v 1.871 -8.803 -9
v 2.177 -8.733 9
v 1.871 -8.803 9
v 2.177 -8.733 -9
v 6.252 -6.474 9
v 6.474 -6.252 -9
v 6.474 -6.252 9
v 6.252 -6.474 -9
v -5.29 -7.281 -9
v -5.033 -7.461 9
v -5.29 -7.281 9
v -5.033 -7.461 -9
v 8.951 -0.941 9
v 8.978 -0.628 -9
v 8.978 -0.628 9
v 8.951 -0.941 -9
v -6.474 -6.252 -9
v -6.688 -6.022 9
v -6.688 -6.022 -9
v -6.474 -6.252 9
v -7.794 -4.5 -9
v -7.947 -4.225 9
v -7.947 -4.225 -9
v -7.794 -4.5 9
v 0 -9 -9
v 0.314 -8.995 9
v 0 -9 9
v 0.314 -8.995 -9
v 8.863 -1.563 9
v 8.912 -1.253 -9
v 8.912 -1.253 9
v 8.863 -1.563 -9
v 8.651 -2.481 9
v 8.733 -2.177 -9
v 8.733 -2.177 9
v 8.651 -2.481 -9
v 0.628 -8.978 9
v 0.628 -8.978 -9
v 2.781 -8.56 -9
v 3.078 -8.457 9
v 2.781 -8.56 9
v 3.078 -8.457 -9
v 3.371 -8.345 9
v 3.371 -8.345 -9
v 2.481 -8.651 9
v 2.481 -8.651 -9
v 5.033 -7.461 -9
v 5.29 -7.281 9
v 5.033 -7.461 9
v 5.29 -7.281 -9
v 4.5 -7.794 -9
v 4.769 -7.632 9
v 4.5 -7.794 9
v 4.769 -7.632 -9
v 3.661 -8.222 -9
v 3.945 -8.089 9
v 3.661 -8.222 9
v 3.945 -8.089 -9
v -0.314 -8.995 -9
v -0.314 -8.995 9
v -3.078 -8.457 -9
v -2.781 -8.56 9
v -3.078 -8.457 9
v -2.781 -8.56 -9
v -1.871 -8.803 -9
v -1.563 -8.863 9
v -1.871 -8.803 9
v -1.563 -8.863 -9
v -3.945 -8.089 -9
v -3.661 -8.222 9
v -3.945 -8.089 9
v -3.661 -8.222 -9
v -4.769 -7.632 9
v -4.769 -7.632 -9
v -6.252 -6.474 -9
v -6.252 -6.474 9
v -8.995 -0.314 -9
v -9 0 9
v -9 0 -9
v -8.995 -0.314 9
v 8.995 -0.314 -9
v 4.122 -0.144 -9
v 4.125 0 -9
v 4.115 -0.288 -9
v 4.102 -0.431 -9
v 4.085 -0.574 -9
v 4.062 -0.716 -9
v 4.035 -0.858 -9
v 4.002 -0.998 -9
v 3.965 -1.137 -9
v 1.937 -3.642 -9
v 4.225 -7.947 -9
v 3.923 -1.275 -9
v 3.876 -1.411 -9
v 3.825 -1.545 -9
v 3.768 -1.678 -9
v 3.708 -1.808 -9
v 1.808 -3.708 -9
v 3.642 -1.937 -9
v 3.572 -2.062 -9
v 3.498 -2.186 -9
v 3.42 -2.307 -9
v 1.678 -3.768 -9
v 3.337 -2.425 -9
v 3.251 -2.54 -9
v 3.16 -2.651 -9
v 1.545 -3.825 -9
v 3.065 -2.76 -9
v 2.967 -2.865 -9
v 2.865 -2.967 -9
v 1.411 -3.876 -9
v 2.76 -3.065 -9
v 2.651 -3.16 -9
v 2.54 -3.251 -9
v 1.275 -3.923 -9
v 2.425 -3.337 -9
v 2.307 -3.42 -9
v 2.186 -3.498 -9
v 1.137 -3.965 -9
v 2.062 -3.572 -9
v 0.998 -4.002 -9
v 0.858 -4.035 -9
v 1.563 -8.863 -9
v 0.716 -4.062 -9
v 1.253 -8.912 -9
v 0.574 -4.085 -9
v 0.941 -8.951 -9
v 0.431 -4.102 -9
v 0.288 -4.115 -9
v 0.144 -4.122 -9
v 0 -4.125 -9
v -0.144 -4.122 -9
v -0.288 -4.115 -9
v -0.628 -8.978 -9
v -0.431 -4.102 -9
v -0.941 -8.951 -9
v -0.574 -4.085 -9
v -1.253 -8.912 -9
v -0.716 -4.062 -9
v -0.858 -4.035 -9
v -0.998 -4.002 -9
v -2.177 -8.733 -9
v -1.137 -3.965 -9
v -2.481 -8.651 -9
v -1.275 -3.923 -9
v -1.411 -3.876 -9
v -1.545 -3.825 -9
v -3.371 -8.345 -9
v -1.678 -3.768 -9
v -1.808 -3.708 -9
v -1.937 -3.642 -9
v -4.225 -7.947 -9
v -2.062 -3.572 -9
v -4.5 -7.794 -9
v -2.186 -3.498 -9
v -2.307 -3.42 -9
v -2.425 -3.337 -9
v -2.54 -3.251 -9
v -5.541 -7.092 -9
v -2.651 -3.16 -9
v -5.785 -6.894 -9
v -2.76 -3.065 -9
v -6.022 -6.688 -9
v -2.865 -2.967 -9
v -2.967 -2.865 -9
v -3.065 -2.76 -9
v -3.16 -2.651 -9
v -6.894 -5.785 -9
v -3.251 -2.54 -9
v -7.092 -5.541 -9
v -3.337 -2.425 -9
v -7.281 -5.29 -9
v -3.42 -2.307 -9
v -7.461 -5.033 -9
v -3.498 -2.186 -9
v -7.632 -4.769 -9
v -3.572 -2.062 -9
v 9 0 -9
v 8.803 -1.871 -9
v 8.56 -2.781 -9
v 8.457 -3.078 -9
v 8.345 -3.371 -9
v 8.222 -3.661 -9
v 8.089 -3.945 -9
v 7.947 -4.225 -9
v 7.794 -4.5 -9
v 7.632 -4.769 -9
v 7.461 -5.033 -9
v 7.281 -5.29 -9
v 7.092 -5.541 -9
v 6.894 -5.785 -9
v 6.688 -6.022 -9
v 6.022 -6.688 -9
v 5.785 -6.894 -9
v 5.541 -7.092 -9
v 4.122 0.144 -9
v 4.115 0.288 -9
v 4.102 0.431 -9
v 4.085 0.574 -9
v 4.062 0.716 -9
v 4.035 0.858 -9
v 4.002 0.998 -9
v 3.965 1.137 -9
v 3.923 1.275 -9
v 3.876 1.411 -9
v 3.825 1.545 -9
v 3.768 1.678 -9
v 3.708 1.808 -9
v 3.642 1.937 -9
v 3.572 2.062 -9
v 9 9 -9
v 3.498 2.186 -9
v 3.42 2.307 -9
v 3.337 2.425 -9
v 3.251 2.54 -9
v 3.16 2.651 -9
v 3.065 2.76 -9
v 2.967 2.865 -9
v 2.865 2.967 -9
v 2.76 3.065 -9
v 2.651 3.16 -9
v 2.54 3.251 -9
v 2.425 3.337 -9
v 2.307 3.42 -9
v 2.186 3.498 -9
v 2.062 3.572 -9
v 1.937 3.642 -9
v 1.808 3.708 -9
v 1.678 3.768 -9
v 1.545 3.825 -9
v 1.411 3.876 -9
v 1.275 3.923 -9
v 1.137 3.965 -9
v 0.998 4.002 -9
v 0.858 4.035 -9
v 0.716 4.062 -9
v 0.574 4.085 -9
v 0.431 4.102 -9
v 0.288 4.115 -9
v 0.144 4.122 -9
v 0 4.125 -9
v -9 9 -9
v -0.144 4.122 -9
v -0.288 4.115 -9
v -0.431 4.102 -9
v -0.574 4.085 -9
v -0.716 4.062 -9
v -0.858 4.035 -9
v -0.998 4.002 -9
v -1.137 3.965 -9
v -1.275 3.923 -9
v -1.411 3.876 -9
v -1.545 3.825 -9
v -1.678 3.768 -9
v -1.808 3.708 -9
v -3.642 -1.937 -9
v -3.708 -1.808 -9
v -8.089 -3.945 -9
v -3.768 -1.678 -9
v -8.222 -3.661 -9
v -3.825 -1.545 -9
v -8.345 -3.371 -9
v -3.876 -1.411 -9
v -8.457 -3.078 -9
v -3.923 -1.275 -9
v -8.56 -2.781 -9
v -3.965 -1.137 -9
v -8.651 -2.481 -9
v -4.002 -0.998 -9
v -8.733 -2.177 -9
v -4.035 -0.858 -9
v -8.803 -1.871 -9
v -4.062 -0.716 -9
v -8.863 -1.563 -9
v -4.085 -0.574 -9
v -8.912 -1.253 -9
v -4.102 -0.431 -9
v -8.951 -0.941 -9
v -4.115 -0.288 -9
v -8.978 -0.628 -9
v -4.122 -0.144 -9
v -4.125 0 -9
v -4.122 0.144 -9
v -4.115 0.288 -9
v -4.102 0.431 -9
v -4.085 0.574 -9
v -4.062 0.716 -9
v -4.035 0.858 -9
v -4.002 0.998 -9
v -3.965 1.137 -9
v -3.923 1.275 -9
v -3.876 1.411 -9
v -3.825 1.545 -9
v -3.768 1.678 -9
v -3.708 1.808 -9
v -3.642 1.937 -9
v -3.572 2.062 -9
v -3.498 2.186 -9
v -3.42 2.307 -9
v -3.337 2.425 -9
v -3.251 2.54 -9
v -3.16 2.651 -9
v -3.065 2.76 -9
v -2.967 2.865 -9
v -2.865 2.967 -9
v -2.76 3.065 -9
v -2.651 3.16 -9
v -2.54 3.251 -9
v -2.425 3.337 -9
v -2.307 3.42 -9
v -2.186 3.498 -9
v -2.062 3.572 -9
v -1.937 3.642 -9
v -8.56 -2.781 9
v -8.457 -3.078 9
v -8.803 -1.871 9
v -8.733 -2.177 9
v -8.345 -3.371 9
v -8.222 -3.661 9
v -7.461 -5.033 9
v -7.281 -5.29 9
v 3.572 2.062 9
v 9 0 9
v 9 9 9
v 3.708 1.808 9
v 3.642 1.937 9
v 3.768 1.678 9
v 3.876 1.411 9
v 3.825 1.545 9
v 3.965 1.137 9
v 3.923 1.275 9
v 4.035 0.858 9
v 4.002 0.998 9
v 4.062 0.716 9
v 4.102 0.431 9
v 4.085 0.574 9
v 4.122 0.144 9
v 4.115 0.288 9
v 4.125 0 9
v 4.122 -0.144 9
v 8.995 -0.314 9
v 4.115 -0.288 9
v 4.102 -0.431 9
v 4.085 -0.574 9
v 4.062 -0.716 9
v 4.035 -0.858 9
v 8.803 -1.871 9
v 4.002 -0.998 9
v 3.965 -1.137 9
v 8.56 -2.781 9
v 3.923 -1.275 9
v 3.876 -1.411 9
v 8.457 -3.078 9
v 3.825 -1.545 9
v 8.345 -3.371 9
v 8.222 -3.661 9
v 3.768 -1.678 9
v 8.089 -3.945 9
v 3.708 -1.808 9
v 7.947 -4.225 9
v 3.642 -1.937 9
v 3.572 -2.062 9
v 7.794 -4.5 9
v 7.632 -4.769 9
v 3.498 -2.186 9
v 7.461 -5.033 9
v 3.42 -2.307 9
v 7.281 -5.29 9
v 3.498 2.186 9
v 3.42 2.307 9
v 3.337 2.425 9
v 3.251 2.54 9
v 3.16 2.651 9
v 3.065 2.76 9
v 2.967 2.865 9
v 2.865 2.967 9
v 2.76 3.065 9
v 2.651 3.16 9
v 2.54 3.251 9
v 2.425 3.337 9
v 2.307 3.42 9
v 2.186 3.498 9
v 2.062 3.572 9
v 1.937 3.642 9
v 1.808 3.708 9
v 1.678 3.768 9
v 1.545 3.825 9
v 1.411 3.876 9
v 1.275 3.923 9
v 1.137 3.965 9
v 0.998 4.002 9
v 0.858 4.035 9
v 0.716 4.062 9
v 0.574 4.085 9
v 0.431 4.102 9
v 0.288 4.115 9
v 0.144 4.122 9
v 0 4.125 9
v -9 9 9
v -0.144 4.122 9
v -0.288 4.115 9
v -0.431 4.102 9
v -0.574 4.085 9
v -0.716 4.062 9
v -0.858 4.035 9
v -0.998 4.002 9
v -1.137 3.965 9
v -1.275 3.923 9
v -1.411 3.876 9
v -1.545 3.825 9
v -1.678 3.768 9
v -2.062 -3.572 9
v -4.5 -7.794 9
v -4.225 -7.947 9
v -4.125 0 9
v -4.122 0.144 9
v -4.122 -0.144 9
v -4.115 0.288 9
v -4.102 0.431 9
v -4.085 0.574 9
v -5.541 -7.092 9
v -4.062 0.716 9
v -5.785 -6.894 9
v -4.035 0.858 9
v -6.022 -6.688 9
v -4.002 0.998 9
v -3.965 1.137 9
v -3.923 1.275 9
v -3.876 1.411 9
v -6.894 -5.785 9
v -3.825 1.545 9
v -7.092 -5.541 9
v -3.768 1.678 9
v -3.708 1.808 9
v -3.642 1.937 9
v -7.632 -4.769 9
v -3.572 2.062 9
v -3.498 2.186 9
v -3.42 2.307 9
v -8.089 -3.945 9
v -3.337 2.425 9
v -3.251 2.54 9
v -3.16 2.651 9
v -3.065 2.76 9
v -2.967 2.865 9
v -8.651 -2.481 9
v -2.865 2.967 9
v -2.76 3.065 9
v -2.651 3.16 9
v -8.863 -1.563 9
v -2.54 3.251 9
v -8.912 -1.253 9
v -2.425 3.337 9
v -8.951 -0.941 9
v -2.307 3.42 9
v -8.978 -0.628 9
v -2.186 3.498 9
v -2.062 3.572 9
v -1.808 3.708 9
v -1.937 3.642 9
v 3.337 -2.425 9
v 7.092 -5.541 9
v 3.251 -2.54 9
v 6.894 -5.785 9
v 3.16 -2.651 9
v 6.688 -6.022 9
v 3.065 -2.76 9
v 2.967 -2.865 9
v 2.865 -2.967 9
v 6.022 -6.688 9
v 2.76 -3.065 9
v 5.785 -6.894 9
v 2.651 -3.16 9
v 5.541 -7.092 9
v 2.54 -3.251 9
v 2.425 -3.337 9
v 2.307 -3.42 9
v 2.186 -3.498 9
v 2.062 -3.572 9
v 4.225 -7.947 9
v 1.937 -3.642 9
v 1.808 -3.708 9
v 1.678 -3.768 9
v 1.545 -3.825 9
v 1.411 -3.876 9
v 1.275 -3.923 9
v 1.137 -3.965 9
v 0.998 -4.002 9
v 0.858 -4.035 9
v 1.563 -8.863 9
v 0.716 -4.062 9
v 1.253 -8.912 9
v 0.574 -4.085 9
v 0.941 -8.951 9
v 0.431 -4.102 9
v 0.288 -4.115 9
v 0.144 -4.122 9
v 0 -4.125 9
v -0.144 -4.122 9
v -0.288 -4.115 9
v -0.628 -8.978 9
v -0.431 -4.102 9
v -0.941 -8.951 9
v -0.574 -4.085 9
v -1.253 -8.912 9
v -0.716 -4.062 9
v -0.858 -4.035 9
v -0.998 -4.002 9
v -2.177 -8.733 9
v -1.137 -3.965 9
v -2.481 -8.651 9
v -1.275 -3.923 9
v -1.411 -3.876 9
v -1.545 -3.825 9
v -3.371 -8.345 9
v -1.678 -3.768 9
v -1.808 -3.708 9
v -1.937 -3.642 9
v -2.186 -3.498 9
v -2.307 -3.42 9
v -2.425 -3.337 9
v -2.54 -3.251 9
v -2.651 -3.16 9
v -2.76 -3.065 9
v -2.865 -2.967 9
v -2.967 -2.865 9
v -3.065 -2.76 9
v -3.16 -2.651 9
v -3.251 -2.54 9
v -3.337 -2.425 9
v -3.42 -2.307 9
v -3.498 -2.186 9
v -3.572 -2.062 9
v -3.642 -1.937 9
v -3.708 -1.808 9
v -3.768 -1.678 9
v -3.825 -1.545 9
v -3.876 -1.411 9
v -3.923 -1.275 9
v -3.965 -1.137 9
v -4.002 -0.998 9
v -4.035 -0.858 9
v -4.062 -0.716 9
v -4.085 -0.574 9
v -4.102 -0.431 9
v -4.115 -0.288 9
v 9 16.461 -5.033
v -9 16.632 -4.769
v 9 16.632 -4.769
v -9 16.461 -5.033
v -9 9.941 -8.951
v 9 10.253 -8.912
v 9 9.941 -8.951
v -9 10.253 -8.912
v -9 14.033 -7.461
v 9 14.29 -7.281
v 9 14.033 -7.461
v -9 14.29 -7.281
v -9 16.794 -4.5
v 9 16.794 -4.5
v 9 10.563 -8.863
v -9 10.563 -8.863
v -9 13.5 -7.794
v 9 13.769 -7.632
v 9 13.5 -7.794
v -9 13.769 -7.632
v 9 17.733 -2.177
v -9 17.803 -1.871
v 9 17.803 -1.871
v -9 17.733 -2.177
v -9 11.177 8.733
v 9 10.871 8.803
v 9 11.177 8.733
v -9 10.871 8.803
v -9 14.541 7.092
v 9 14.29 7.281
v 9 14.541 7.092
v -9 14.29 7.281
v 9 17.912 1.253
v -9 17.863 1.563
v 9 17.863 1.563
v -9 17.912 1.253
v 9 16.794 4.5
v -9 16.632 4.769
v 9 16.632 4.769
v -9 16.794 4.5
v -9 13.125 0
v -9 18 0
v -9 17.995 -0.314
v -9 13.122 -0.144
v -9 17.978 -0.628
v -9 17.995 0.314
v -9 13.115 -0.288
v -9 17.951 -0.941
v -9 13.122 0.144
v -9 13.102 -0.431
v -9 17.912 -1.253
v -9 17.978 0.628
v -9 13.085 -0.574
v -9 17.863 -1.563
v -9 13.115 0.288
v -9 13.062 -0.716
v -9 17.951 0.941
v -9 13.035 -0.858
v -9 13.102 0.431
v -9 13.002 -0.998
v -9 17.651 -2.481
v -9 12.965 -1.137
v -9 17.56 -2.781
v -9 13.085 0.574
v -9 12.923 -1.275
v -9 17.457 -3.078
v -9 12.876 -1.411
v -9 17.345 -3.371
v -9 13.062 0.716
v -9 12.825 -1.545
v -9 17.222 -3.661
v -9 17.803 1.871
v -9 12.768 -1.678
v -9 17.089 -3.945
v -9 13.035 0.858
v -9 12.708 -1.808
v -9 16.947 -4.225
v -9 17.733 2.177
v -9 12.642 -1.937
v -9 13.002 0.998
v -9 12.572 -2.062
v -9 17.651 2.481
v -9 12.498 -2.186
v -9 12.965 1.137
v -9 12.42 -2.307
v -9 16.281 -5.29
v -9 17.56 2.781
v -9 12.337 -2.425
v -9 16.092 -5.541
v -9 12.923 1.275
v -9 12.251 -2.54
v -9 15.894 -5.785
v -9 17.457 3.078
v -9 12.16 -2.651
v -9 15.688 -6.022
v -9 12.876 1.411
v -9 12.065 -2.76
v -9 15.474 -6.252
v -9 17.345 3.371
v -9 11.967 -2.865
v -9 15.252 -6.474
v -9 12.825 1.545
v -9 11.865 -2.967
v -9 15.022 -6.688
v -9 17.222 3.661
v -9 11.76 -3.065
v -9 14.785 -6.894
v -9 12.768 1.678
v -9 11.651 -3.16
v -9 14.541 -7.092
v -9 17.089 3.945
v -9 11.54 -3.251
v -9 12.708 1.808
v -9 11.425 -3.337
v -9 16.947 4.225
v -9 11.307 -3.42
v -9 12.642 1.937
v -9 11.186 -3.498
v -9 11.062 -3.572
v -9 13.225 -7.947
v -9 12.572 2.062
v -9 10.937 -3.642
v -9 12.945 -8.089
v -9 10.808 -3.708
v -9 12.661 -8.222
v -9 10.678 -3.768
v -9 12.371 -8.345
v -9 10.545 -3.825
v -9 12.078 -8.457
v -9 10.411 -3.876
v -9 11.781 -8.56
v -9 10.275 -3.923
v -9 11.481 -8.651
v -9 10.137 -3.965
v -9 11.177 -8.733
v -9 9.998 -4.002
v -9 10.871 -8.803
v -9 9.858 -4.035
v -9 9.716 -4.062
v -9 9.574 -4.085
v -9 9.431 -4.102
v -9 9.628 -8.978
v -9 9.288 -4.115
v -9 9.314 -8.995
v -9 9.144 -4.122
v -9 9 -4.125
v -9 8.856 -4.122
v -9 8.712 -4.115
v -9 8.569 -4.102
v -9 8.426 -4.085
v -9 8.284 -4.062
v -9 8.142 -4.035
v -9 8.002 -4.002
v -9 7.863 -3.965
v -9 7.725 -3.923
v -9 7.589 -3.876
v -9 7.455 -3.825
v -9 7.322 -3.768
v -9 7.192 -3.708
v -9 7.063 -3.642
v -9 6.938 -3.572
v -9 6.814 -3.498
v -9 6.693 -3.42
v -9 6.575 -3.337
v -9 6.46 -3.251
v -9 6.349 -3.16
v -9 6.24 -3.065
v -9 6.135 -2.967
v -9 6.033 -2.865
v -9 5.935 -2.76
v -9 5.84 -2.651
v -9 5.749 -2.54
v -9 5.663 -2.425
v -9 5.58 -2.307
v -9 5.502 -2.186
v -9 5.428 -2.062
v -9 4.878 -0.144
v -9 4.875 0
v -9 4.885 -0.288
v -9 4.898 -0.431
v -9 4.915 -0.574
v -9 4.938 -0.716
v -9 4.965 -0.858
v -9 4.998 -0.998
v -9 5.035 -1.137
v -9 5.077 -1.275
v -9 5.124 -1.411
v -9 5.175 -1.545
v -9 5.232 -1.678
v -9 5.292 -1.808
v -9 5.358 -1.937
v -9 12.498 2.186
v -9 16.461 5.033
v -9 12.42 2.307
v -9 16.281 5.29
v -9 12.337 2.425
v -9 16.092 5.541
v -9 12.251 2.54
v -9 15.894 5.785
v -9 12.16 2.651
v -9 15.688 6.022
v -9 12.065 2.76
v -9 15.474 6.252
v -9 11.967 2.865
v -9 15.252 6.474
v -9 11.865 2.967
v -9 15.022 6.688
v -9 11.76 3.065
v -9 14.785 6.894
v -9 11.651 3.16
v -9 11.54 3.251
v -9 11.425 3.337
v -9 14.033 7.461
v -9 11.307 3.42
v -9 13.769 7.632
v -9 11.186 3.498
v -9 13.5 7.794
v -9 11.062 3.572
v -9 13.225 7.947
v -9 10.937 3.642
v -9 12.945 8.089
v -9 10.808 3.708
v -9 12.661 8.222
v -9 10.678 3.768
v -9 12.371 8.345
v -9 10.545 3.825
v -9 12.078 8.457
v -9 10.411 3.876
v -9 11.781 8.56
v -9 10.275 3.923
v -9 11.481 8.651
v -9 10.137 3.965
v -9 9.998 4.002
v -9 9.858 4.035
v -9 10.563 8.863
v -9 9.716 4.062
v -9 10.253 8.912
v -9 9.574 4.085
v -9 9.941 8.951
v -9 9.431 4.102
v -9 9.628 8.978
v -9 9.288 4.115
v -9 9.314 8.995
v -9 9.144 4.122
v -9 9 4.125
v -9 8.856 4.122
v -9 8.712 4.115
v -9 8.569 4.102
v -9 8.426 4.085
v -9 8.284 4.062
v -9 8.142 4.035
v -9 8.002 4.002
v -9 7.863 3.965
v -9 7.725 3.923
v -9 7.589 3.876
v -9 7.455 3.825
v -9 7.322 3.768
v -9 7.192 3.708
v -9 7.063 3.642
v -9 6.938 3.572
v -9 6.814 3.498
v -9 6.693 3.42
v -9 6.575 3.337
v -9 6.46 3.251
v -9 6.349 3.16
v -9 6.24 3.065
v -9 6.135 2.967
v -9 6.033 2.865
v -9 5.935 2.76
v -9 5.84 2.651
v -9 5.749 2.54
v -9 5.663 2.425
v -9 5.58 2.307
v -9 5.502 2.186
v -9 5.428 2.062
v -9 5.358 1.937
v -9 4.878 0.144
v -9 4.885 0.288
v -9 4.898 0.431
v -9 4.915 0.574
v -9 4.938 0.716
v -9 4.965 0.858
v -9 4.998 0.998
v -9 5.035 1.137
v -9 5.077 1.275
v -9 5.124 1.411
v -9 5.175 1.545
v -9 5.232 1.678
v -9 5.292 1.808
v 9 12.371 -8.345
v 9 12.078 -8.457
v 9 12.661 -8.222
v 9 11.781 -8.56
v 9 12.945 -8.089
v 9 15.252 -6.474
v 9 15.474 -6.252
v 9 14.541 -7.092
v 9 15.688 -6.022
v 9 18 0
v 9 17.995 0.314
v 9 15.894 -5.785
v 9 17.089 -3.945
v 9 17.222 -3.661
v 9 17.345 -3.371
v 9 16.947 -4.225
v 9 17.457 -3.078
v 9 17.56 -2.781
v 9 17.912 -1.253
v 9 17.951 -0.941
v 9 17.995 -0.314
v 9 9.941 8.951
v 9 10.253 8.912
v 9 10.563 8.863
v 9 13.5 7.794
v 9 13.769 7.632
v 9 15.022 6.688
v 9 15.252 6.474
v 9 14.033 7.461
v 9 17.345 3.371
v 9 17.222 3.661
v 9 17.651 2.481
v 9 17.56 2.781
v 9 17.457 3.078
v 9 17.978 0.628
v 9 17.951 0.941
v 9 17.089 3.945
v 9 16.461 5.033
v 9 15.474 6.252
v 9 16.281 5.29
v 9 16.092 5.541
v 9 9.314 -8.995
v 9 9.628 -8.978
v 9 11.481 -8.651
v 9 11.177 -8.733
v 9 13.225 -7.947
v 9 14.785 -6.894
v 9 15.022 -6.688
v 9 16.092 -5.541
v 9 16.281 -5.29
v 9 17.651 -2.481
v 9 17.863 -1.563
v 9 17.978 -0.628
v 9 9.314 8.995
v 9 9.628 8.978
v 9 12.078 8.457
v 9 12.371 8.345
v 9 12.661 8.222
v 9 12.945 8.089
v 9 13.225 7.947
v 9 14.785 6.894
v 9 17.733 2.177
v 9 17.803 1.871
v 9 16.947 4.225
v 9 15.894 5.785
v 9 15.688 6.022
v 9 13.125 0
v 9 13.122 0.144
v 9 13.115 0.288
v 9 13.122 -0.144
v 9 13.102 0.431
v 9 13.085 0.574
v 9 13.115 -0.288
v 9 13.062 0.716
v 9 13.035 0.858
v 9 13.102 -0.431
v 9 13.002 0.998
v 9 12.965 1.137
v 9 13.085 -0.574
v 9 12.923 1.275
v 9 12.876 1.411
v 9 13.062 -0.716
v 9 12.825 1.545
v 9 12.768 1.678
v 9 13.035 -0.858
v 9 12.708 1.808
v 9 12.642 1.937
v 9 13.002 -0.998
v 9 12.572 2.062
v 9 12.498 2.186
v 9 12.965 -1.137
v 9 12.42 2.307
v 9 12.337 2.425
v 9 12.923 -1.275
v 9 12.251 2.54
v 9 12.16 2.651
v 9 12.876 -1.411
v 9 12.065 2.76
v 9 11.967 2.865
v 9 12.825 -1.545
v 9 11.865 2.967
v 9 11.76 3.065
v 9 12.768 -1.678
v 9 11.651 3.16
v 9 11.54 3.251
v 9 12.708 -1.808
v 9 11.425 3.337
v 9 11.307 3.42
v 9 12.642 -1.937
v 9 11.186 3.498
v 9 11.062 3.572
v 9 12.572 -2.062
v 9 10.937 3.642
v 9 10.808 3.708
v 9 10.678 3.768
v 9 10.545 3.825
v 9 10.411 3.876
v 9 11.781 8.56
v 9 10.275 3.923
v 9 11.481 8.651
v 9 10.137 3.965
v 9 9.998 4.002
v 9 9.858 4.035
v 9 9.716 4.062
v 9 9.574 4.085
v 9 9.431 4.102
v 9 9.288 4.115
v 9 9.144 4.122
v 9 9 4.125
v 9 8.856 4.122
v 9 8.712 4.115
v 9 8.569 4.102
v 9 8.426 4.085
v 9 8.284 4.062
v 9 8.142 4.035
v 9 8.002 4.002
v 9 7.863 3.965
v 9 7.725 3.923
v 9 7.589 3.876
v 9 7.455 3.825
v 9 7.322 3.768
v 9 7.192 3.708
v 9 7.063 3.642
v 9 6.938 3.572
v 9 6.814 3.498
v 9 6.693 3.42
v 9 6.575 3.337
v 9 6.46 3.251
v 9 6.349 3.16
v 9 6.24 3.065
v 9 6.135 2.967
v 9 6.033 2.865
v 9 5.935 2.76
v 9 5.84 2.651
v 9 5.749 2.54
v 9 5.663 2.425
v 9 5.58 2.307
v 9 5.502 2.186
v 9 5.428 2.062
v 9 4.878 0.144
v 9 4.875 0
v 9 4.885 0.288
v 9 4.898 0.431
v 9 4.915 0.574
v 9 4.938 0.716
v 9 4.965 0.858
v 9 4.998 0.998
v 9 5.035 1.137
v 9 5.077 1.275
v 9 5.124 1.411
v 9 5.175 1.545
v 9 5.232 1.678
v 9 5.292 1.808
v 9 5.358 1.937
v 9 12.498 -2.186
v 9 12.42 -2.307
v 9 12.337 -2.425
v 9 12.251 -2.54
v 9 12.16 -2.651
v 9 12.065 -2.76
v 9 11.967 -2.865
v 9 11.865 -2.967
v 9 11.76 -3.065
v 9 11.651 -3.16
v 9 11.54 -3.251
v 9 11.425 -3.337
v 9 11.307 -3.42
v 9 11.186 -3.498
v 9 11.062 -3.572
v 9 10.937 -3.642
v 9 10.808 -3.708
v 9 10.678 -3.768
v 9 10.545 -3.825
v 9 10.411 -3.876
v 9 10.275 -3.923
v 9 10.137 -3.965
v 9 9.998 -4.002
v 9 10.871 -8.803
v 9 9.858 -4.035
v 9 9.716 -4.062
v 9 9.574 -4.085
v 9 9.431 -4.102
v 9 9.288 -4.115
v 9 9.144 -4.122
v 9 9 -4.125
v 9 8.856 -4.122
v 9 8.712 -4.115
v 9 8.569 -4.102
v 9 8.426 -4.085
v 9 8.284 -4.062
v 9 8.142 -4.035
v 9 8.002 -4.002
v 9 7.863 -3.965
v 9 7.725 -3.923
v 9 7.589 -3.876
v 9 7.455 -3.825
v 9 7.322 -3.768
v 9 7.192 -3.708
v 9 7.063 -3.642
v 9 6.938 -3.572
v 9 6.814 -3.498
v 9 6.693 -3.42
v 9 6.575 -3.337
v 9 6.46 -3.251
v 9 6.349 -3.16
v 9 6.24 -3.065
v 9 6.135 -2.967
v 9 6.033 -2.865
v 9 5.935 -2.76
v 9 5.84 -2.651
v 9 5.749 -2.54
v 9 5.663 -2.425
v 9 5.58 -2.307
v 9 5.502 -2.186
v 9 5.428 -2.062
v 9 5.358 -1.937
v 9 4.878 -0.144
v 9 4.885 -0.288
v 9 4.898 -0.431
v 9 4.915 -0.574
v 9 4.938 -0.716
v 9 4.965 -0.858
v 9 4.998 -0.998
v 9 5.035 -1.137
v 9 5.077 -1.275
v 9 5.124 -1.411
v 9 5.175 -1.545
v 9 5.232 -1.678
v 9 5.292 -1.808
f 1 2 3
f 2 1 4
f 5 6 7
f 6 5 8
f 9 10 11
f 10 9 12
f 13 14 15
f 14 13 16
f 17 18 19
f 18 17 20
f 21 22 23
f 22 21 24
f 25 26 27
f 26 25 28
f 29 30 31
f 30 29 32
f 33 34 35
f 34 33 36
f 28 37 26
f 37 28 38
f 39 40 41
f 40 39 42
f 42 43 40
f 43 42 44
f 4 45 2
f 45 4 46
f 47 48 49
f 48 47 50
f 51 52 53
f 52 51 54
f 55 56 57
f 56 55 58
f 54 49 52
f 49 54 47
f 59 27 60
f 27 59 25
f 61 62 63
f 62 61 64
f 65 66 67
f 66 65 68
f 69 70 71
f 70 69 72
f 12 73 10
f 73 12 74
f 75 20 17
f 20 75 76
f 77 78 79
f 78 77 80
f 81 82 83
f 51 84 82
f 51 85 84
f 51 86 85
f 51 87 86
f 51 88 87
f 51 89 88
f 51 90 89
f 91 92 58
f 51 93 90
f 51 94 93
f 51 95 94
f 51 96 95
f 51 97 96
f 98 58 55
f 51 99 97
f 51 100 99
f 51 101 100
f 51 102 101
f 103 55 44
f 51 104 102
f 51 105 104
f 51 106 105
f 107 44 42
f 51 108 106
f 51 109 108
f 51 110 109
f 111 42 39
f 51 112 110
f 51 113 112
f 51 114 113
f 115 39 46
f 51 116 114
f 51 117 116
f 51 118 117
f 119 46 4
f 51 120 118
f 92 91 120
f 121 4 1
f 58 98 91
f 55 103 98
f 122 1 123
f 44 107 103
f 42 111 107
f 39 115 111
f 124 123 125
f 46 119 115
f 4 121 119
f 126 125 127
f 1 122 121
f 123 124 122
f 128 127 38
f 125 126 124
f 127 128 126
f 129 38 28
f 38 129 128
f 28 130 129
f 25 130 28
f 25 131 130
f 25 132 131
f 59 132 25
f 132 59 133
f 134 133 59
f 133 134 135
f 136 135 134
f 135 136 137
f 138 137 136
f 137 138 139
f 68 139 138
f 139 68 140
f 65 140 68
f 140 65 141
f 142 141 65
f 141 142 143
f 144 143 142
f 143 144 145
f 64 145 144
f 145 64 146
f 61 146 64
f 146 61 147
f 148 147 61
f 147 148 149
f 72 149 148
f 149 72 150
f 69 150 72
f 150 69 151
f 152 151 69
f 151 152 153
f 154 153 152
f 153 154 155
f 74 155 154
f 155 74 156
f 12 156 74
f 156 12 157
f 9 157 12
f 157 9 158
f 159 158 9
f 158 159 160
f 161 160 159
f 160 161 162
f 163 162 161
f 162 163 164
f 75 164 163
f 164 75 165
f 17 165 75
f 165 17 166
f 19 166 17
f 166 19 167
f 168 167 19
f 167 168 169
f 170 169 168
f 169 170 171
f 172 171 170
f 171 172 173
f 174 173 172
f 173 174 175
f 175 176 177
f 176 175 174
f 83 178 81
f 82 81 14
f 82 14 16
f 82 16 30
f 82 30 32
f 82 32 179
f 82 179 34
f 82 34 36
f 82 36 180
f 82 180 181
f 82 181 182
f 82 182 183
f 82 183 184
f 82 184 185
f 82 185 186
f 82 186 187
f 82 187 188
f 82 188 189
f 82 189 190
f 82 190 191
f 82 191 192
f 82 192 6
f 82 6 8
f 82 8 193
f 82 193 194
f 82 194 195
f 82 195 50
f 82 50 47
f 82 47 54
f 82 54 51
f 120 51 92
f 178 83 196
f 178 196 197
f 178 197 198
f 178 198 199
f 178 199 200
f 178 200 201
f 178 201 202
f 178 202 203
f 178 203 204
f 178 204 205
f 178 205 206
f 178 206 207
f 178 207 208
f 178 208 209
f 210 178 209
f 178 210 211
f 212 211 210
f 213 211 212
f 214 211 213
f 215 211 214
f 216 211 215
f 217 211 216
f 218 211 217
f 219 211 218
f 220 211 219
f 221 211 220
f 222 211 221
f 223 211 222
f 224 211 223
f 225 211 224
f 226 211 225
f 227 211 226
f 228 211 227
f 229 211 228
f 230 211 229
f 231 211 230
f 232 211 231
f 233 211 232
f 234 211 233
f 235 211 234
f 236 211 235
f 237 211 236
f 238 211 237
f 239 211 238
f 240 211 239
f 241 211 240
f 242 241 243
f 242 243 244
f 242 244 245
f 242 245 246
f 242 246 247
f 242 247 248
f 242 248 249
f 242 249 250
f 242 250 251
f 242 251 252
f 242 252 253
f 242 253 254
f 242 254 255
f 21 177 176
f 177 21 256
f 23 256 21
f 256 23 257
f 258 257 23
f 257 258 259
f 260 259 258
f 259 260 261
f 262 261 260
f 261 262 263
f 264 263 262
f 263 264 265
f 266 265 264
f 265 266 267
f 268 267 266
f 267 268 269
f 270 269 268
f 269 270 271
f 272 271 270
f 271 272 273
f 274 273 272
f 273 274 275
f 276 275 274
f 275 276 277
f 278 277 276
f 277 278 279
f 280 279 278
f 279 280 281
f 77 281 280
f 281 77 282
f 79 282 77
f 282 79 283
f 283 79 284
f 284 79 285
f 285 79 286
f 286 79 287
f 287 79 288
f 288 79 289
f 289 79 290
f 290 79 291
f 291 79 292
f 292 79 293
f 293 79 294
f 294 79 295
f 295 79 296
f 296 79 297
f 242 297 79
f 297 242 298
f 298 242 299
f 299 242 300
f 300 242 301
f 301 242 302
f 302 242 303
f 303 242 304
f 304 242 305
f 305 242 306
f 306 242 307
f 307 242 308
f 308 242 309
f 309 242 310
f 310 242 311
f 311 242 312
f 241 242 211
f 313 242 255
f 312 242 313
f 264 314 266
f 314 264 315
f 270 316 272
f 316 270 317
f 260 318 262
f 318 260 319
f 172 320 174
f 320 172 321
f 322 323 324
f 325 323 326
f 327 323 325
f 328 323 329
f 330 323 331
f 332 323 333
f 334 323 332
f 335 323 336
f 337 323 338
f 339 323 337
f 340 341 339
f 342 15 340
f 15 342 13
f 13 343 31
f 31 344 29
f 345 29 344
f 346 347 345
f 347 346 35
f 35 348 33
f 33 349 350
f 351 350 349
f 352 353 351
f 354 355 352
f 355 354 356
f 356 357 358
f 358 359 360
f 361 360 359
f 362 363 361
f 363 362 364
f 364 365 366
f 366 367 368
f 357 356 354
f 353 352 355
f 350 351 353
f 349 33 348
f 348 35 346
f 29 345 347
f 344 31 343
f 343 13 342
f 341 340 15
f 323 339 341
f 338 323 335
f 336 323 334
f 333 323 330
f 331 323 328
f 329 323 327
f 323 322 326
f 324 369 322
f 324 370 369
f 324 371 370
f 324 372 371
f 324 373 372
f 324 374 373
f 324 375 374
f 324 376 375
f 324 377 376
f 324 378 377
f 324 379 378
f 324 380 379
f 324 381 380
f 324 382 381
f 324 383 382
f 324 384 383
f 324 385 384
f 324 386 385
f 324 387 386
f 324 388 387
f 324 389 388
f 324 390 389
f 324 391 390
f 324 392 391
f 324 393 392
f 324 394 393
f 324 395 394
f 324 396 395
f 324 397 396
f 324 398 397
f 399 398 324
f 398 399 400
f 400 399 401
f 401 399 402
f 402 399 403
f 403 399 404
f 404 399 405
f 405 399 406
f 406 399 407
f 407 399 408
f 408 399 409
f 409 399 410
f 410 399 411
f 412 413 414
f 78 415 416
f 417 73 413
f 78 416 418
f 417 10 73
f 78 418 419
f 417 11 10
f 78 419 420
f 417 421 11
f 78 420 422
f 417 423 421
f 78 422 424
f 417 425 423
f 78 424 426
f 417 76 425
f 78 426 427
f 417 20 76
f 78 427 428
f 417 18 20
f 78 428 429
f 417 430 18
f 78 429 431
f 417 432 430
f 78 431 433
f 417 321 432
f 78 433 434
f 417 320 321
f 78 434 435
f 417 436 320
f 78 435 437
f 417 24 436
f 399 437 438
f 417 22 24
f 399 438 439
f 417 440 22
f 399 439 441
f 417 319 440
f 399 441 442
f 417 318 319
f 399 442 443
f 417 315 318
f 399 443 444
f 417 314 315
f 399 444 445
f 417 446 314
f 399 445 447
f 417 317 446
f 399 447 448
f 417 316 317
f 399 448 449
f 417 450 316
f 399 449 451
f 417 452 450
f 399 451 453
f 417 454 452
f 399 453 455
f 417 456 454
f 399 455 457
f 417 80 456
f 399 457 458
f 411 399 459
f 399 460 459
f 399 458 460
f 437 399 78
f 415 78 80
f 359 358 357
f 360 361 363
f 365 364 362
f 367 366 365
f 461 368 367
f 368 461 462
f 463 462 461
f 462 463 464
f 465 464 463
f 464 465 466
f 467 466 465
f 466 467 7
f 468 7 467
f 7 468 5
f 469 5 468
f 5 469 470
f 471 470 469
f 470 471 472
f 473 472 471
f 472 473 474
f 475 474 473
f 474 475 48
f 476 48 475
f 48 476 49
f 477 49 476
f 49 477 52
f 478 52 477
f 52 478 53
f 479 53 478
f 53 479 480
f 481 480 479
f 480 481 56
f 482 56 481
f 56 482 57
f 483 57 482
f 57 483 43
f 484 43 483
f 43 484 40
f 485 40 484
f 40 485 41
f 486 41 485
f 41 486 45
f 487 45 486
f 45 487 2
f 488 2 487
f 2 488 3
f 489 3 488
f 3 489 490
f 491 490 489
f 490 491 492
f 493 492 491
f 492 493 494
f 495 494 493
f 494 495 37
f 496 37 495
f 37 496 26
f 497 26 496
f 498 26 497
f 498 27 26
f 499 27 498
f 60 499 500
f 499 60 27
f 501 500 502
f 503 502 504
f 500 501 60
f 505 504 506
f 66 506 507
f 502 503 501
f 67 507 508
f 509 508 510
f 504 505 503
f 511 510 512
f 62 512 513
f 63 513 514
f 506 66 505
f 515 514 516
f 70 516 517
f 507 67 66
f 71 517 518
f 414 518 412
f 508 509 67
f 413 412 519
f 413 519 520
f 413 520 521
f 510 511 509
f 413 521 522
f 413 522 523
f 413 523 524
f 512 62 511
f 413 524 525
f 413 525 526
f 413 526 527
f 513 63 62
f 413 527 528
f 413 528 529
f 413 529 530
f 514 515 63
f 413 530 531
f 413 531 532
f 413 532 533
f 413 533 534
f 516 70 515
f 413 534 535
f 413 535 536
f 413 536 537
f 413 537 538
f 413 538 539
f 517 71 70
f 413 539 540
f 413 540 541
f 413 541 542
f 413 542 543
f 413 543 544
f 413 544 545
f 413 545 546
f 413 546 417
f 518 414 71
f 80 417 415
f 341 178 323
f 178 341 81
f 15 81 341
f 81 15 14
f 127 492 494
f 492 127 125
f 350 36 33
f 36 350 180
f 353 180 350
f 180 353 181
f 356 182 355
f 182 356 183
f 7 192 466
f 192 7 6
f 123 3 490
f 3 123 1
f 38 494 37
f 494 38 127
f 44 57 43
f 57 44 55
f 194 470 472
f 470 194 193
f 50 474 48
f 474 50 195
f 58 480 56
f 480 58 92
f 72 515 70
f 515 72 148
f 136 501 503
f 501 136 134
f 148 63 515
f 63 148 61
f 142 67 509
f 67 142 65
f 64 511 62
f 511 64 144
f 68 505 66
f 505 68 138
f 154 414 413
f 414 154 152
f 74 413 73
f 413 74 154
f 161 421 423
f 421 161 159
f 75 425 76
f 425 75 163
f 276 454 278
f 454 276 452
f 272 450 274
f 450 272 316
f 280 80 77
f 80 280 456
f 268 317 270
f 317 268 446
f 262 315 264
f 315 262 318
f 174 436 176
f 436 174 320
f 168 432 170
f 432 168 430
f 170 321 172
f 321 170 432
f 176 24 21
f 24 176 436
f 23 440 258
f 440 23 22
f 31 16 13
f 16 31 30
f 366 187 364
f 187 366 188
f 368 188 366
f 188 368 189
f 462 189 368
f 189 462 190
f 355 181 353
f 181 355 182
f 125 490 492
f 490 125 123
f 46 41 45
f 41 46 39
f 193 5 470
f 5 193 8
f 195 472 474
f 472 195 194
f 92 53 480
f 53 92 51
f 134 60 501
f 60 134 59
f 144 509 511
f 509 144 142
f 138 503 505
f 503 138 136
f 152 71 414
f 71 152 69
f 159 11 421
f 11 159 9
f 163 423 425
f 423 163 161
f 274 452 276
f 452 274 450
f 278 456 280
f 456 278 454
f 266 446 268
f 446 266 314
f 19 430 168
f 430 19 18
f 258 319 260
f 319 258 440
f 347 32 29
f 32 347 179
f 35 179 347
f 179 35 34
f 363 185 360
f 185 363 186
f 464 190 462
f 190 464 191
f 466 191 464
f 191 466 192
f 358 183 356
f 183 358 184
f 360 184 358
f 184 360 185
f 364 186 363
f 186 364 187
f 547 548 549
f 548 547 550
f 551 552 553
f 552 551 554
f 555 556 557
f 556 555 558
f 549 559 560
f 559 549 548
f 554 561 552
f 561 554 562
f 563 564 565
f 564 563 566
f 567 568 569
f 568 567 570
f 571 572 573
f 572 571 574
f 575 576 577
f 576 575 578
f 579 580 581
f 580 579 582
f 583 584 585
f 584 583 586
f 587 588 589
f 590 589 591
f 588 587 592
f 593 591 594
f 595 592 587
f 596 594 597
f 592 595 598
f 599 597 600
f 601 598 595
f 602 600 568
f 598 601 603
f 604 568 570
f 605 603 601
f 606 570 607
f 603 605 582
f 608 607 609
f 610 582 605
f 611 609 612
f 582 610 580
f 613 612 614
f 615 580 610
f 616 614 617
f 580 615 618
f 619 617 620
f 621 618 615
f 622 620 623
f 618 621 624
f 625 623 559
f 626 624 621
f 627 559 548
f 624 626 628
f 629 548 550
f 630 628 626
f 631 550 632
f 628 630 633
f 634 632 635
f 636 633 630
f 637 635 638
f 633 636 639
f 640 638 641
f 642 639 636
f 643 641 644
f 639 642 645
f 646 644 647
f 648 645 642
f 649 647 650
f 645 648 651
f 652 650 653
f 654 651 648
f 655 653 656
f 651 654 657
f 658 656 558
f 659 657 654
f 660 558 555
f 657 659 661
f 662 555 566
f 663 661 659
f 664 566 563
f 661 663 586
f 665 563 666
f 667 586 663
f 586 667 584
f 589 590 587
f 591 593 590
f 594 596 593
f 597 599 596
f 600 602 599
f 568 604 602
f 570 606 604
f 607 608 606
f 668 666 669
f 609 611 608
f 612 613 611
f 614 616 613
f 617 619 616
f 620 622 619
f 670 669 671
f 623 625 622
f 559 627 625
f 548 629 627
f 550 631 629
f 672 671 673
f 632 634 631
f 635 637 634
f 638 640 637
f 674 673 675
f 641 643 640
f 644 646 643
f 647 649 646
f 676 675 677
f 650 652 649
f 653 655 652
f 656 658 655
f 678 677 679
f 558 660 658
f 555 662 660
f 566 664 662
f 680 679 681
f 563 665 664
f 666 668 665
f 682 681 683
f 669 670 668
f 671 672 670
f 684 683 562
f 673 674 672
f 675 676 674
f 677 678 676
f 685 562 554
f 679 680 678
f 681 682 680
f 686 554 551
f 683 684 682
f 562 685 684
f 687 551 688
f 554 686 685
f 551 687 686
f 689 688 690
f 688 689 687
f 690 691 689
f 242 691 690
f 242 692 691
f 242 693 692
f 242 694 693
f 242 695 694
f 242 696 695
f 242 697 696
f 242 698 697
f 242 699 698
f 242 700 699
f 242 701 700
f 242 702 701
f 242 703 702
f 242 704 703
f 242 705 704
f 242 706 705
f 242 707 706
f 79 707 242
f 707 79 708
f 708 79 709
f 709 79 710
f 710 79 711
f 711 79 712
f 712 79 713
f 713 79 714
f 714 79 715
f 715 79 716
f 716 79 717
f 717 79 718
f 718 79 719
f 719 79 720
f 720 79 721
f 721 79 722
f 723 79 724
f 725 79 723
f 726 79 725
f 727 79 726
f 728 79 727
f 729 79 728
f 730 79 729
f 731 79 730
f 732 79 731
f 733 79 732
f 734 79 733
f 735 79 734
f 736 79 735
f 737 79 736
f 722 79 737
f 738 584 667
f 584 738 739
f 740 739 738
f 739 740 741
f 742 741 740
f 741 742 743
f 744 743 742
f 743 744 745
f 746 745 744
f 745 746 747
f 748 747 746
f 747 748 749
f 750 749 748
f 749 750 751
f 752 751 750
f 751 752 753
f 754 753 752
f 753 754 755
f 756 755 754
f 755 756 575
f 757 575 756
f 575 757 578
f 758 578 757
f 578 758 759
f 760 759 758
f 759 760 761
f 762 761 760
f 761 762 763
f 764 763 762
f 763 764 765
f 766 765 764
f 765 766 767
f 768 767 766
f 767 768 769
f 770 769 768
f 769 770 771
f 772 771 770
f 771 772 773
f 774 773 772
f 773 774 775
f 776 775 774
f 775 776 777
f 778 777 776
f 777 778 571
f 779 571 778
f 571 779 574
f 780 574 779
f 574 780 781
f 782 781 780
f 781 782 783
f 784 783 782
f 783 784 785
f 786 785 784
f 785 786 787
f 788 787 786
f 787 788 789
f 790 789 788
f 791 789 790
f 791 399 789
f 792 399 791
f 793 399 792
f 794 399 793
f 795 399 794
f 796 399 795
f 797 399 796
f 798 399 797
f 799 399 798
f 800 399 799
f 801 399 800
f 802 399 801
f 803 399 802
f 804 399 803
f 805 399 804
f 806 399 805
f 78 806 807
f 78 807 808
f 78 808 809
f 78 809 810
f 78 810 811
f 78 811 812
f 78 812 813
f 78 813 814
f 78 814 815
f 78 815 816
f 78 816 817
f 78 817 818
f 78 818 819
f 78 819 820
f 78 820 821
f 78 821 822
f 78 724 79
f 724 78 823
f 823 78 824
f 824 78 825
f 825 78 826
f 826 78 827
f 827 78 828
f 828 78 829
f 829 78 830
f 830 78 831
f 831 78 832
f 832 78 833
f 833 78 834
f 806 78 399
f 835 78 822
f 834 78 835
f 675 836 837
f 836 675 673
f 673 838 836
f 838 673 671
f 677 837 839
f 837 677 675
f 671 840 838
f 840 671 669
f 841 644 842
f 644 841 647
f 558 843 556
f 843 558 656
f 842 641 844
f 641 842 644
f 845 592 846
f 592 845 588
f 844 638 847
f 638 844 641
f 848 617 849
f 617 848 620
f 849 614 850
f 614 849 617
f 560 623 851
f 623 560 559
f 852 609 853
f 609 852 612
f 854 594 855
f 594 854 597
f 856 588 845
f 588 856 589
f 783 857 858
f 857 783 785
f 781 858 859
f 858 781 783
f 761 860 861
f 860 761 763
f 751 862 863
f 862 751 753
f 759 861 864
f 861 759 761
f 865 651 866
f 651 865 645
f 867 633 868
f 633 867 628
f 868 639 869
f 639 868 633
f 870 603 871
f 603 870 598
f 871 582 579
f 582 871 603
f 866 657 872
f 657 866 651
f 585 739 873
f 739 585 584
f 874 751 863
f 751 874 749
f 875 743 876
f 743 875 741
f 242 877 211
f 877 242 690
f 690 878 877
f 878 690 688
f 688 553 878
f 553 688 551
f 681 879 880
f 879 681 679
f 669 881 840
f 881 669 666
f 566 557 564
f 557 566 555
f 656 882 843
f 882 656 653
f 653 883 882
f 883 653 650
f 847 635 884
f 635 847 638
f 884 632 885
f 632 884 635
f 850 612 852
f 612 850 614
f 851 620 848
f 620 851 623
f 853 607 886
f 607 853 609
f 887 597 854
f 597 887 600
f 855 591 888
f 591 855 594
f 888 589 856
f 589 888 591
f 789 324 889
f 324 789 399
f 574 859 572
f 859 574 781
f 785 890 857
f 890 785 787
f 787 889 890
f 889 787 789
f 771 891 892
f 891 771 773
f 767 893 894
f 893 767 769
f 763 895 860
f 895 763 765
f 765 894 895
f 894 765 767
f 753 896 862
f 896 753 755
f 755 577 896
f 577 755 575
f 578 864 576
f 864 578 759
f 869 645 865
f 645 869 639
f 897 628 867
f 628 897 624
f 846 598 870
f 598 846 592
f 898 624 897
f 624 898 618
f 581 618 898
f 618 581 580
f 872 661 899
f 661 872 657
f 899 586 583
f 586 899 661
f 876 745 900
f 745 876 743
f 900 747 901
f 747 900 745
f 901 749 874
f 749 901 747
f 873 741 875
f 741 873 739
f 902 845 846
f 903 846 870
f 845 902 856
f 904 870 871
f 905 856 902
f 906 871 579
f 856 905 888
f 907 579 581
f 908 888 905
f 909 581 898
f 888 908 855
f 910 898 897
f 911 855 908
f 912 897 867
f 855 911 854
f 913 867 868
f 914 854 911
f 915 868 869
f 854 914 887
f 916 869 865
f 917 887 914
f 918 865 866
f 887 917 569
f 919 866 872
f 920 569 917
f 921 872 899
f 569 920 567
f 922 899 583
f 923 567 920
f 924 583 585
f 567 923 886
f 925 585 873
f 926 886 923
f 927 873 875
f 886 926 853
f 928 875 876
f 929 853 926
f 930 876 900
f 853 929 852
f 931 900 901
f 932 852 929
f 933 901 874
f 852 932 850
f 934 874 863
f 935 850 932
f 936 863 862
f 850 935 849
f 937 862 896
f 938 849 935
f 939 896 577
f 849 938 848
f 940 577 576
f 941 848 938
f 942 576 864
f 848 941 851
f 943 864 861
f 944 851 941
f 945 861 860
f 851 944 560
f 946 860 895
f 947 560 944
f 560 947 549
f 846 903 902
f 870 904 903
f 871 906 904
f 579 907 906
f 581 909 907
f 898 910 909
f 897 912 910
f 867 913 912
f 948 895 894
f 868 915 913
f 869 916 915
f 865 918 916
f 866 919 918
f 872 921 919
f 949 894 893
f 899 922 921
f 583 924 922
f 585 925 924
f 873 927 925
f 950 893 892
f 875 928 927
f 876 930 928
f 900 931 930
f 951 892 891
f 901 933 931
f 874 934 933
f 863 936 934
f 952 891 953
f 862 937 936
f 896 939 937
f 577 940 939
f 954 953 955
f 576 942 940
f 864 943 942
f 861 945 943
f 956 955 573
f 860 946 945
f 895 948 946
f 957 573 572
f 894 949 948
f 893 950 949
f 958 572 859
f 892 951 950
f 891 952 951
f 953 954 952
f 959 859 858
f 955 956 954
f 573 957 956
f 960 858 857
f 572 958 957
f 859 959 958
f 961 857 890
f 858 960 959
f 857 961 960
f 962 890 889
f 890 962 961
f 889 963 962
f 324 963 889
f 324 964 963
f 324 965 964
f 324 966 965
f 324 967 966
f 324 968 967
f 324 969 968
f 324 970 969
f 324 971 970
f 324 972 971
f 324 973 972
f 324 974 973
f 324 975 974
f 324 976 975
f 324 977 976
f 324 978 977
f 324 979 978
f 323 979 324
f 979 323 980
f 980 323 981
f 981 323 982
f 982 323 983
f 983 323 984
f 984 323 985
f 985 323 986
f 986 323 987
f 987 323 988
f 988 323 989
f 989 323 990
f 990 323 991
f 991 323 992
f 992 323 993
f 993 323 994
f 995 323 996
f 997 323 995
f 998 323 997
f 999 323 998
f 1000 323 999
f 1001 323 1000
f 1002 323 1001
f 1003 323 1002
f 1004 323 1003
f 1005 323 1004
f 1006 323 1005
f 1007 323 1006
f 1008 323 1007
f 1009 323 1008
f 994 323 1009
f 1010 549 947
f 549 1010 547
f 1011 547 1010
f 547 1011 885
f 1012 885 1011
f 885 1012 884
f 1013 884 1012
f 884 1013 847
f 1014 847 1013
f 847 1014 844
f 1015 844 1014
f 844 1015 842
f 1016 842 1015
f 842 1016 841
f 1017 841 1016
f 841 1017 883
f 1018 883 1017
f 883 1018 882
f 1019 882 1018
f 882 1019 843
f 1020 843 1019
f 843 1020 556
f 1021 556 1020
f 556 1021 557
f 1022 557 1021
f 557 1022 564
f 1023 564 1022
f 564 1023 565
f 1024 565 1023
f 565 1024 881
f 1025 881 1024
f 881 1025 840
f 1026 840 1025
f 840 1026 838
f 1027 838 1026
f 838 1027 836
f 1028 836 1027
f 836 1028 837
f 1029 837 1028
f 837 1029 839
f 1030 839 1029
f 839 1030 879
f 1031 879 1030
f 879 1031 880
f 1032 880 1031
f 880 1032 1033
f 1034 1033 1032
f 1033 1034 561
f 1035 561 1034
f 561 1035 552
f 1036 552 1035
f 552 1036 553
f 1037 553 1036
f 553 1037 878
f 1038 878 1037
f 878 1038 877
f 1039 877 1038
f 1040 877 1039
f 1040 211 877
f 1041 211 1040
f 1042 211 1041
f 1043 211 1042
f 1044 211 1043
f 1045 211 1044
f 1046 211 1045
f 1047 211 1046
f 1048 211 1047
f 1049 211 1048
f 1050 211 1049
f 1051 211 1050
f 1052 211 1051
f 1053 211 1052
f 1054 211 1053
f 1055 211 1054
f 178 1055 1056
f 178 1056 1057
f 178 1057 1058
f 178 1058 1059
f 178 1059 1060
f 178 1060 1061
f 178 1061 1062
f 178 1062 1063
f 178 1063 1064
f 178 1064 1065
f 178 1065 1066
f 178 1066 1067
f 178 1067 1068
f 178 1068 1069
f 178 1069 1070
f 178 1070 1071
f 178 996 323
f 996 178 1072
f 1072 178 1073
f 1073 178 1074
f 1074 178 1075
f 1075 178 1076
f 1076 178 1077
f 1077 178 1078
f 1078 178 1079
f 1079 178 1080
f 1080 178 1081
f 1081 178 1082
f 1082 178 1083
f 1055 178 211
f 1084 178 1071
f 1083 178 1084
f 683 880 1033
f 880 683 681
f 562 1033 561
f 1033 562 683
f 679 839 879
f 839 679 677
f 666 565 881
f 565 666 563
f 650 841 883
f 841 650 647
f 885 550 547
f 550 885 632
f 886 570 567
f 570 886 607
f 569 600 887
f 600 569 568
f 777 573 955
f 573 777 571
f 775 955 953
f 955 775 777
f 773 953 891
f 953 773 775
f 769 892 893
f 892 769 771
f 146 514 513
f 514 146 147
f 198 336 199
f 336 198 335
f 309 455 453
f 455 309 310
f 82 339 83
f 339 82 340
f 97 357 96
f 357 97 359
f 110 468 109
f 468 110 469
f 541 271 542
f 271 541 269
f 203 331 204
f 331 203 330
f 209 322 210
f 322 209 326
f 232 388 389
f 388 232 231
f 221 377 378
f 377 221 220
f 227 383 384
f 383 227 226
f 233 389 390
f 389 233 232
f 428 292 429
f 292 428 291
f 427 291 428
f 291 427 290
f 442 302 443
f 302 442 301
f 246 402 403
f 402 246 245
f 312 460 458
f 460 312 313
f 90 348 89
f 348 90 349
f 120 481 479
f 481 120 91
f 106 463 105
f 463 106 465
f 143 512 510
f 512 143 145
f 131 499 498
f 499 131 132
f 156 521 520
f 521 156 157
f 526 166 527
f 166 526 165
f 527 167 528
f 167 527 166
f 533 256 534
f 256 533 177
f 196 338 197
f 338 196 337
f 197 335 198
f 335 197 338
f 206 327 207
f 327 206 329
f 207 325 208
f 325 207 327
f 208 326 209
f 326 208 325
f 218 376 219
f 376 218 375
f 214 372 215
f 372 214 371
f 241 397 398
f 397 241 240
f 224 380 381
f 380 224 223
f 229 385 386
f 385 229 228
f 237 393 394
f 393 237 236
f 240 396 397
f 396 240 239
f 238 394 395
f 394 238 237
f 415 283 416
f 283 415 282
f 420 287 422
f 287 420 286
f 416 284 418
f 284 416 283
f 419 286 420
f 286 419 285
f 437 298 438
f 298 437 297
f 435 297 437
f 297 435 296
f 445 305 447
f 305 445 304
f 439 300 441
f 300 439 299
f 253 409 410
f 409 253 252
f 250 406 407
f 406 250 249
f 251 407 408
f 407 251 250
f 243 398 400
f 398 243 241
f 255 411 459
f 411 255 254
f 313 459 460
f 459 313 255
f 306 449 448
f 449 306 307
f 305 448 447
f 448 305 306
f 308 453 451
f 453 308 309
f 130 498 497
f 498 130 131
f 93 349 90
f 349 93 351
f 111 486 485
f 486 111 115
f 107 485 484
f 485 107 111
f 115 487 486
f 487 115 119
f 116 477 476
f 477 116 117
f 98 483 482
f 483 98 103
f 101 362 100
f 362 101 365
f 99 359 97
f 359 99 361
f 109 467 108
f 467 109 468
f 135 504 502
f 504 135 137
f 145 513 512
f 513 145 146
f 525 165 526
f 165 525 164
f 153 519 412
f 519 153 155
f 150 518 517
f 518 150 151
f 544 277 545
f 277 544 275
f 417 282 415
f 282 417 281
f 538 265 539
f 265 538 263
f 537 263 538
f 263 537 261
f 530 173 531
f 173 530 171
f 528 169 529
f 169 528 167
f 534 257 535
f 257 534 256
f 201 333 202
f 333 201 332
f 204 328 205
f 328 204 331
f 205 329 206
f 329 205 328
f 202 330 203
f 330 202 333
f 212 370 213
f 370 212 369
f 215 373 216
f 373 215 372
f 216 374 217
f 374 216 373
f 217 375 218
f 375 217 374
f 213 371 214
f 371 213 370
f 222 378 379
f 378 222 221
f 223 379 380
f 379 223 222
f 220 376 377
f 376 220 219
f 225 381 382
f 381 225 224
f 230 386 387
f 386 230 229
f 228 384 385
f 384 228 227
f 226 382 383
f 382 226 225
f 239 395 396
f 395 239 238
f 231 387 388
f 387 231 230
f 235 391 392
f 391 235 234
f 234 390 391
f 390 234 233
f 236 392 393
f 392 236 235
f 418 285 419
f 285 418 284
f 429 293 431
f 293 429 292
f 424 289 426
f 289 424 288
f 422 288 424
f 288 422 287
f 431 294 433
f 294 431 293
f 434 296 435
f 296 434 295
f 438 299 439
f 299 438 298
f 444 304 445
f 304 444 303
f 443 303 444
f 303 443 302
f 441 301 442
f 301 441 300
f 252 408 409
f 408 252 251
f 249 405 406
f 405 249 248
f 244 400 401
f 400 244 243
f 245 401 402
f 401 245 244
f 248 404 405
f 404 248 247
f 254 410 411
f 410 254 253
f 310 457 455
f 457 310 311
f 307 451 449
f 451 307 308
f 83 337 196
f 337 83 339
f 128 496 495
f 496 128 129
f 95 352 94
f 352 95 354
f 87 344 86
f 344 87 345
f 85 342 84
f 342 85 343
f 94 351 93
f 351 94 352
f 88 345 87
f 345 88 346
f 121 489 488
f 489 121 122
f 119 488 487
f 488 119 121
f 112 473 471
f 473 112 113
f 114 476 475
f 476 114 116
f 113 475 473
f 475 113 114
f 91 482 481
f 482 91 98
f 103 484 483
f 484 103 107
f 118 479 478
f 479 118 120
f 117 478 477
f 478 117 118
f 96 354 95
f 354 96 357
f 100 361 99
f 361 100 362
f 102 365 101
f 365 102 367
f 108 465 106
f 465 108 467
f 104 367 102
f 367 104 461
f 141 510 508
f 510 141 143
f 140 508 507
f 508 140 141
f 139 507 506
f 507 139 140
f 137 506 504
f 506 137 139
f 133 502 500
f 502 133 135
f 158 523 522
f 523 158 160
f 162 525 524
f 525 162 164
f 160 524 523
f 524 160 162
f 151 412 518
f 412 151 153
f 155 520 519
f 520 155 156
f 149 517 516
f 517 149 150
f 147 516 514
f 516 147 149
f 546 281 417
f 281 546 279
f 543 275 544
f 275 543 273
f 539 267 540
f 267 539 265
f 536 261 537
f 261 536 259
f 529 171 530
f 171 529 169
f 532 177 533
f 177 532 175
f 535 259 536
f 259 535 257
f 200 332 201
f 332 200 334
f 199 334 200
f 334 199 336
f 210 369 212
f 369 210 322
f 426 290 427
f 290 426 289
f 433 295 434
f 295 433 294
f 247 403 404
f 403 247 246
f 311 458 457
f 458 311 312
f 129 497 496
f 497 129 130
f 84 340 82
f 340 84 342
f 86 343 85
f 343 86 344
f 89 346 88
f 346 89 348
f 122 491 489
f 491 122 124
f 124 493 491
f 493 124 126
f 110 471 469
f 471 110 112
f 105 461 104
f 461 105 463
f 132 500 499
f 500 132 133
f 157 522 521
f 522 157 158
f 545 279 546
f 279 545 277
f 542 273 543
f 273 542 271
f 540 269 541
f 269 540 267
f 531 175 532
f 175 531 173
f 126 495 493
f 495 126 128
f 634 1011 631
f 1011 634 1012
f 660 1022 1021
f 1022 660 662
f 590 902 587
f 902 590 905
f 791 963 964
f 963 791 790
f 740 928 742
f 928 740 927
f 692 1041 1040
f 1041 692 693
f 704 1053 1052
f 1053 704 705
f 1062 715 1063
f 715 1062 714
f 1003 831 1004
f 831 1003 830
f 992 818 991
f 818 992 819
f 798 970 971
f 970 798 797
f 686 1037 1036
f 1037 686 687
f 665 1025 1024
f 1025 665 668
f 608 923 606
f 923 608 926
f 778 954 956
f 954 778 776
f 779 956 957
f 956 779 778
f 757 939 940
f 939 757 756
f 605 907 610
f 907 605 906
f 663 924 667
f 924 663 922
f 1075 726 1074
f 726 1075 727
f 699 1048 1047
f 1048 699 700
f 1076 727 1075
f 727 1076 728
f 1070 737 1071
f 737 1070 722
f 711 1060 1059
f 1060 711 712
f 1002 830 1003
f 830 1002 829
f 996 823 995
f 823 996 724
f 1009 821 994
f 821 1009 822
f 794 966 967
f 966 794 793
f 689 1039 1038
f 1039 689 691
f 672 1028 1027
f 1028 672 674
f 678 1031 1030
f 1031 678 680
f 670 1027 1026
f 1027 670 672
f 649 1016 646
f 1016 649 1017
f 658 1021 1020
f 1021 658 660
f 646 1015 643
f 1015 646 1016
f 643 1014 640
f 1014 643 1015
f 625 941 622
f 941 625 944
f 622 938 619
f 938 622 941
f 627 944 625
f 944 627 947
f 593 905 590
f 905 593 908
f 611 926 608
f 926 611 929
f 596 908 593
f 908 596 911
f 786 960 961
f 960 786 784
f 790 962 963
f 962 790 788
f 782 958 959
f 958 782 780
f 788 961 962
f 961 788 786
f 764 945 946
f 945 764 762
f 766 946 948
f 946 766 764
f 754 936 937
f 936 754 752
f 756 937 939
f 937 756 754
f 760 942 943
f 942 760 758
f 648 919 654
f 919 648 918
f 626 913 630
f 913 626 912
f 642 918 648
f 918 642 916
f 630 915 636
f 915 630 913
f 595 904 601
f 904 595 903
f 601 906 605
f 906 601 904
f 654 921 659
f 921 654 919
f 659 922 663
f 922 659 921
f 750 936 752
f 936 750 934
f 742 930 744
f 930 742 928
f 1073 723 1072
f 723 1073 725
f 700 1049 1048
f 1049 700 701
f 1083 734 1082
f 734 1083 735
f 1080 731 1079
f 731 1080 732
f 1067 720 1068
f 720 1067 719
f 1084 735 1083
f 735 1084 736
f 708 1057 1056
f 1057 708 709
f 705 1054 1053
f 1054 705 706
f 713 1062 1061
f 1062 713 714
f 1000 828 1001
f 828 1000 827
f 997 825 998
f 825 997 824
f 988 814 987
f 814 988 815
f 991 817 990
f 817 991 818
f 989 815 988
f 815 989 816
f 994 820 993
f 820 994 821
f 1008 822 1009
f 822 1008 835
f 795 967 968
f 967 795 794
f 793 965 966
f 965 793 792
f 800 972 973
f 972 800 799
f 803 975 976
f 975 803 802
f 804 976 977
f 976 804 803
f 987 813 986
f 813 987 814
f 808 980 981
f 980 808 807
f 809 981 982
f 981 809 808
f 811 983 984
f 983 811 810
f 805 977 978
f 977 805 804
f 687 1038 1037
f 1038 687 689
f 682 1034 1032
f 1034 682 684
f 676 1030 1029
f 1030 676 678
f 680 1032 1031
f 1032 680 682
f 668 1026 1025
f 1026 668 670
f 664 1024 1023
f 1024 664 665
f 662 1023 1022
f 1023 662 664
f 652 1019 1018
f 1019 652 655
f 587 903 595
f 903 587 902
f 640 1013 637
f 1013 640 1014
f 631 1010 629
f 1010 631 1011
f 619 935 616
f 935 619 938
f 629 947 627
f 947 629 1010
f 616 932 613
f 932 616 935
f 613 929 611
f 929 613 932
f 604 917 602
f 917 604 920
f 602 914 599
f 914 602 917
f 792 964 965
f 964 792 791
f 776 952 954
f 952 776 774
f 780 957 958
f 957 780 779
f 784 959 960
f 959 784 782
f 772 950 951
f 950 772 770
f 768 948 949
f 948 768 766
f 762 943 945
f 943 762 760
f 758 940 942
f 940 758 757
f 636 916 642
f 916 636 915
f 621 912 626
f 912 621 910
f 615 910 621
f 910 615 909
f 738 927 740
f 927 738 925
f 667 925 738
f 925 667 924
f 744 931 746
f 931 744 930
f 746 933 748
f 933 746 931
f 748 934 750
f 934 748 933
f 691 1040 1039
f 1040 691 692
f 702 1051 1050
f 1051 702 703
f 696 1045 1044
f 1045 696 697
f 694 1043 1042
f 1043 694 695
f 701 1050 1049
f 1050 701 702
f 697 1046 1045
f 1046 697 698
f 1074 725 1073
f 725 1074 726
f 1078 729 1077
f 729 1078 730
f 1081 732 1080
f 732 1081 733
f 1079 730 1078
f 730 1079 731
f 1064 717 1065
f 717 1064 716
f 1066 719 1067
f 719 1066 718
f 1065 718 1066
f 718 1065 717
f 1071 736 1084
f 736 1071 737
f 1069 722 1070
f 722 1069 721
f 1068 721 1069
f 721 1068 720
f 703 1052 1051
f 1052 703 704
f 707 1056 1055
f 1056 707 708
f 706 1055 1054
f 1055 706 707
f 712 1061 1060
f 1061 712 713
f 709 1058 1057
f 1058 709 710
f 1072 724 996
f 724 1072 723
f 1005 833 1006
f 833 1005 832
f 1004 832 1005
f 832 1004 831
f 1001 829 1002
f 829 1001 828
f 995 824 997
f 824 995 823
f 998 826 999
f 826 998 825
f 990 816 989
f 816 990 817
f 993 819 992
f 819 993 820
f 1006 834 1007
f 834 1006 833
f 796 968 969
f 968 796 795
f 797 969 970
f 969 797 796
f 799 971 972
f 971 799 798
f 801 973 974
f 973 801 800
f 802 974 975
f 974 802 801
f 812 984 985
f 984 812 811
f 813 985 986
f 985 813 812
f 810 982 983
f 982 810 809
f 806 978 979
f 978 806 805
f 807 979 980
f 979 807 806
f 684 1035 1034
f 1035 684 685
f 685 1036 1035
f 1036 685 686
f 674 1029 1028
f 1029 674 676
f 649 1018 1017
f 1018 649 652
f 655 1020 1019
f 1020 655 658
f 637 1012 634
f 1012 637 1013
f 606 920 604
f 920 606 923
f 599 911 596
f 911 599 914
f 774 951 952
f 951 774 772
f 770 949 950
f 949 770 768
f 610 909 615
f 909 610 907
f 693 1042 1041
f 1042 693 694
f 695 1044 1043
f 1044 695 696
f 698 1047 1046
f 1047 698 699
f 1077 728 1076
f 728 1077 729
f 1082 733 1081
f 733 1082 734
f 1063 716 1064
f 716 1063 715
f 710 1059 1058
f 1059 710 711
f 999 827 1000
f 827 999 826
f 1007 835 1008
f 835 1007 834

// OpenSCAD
//cube([120,120,3], center = true);
//translate([-45,-45,0])cylinder(h = 3, r=15, $fn = 180, center = true);
//rotate_extrude(convexity = 10, $fn = A) translate([20+1.5, 0, 0])circle(d = 3, $fn = B);
//module Test(){
//import("asd.stl");

//sphere(2, $fn=100); 

/*

CubePoints = [
  [  0,  0,  0 ],  //0
  [ 10,  0,  0 ],  //1
  [ 10,  7,  0 ],  //2
  [  0,  7,  0 ],  //3
  [  0,  0,  5 ],  //4
  [ 10,  0,  5 ],  //5
  [ 10,  7,  5 ],  //6
  [  0,  7,  5 ]]; //7
  
CubeFaces = [
  [0,1,2,3],  // bottom
  [4,5,1,0],  // front
  [7,6,5,4],  // top
  [5,6,2,1],  // right
  [6,7,3,2],  // back
  [7,4,0,3]]; // left
  
polyhedron( CubePoints, CubeFaces );
     
*/     
     
     
     
difference(){     
union(){     
translate([0,0,0])cylinder(h = 18, d=18, $fn = 180, center = true);     


translate([0,9,0])rotate([0,90,0])cylinder(h = 18, d=18, $fn = 180, center = true);  

translate([0,4.5,0])cube([18,9,18], center = true);


}     

translate([0,0,0])cylinder(h = 20, d=8.25, $fn = 180, center = true);  

translate([0,9,0])rotate([0,90,0])cylinder(h = 20, d=8.25, $fn = 180, center = true);  


}     
     
